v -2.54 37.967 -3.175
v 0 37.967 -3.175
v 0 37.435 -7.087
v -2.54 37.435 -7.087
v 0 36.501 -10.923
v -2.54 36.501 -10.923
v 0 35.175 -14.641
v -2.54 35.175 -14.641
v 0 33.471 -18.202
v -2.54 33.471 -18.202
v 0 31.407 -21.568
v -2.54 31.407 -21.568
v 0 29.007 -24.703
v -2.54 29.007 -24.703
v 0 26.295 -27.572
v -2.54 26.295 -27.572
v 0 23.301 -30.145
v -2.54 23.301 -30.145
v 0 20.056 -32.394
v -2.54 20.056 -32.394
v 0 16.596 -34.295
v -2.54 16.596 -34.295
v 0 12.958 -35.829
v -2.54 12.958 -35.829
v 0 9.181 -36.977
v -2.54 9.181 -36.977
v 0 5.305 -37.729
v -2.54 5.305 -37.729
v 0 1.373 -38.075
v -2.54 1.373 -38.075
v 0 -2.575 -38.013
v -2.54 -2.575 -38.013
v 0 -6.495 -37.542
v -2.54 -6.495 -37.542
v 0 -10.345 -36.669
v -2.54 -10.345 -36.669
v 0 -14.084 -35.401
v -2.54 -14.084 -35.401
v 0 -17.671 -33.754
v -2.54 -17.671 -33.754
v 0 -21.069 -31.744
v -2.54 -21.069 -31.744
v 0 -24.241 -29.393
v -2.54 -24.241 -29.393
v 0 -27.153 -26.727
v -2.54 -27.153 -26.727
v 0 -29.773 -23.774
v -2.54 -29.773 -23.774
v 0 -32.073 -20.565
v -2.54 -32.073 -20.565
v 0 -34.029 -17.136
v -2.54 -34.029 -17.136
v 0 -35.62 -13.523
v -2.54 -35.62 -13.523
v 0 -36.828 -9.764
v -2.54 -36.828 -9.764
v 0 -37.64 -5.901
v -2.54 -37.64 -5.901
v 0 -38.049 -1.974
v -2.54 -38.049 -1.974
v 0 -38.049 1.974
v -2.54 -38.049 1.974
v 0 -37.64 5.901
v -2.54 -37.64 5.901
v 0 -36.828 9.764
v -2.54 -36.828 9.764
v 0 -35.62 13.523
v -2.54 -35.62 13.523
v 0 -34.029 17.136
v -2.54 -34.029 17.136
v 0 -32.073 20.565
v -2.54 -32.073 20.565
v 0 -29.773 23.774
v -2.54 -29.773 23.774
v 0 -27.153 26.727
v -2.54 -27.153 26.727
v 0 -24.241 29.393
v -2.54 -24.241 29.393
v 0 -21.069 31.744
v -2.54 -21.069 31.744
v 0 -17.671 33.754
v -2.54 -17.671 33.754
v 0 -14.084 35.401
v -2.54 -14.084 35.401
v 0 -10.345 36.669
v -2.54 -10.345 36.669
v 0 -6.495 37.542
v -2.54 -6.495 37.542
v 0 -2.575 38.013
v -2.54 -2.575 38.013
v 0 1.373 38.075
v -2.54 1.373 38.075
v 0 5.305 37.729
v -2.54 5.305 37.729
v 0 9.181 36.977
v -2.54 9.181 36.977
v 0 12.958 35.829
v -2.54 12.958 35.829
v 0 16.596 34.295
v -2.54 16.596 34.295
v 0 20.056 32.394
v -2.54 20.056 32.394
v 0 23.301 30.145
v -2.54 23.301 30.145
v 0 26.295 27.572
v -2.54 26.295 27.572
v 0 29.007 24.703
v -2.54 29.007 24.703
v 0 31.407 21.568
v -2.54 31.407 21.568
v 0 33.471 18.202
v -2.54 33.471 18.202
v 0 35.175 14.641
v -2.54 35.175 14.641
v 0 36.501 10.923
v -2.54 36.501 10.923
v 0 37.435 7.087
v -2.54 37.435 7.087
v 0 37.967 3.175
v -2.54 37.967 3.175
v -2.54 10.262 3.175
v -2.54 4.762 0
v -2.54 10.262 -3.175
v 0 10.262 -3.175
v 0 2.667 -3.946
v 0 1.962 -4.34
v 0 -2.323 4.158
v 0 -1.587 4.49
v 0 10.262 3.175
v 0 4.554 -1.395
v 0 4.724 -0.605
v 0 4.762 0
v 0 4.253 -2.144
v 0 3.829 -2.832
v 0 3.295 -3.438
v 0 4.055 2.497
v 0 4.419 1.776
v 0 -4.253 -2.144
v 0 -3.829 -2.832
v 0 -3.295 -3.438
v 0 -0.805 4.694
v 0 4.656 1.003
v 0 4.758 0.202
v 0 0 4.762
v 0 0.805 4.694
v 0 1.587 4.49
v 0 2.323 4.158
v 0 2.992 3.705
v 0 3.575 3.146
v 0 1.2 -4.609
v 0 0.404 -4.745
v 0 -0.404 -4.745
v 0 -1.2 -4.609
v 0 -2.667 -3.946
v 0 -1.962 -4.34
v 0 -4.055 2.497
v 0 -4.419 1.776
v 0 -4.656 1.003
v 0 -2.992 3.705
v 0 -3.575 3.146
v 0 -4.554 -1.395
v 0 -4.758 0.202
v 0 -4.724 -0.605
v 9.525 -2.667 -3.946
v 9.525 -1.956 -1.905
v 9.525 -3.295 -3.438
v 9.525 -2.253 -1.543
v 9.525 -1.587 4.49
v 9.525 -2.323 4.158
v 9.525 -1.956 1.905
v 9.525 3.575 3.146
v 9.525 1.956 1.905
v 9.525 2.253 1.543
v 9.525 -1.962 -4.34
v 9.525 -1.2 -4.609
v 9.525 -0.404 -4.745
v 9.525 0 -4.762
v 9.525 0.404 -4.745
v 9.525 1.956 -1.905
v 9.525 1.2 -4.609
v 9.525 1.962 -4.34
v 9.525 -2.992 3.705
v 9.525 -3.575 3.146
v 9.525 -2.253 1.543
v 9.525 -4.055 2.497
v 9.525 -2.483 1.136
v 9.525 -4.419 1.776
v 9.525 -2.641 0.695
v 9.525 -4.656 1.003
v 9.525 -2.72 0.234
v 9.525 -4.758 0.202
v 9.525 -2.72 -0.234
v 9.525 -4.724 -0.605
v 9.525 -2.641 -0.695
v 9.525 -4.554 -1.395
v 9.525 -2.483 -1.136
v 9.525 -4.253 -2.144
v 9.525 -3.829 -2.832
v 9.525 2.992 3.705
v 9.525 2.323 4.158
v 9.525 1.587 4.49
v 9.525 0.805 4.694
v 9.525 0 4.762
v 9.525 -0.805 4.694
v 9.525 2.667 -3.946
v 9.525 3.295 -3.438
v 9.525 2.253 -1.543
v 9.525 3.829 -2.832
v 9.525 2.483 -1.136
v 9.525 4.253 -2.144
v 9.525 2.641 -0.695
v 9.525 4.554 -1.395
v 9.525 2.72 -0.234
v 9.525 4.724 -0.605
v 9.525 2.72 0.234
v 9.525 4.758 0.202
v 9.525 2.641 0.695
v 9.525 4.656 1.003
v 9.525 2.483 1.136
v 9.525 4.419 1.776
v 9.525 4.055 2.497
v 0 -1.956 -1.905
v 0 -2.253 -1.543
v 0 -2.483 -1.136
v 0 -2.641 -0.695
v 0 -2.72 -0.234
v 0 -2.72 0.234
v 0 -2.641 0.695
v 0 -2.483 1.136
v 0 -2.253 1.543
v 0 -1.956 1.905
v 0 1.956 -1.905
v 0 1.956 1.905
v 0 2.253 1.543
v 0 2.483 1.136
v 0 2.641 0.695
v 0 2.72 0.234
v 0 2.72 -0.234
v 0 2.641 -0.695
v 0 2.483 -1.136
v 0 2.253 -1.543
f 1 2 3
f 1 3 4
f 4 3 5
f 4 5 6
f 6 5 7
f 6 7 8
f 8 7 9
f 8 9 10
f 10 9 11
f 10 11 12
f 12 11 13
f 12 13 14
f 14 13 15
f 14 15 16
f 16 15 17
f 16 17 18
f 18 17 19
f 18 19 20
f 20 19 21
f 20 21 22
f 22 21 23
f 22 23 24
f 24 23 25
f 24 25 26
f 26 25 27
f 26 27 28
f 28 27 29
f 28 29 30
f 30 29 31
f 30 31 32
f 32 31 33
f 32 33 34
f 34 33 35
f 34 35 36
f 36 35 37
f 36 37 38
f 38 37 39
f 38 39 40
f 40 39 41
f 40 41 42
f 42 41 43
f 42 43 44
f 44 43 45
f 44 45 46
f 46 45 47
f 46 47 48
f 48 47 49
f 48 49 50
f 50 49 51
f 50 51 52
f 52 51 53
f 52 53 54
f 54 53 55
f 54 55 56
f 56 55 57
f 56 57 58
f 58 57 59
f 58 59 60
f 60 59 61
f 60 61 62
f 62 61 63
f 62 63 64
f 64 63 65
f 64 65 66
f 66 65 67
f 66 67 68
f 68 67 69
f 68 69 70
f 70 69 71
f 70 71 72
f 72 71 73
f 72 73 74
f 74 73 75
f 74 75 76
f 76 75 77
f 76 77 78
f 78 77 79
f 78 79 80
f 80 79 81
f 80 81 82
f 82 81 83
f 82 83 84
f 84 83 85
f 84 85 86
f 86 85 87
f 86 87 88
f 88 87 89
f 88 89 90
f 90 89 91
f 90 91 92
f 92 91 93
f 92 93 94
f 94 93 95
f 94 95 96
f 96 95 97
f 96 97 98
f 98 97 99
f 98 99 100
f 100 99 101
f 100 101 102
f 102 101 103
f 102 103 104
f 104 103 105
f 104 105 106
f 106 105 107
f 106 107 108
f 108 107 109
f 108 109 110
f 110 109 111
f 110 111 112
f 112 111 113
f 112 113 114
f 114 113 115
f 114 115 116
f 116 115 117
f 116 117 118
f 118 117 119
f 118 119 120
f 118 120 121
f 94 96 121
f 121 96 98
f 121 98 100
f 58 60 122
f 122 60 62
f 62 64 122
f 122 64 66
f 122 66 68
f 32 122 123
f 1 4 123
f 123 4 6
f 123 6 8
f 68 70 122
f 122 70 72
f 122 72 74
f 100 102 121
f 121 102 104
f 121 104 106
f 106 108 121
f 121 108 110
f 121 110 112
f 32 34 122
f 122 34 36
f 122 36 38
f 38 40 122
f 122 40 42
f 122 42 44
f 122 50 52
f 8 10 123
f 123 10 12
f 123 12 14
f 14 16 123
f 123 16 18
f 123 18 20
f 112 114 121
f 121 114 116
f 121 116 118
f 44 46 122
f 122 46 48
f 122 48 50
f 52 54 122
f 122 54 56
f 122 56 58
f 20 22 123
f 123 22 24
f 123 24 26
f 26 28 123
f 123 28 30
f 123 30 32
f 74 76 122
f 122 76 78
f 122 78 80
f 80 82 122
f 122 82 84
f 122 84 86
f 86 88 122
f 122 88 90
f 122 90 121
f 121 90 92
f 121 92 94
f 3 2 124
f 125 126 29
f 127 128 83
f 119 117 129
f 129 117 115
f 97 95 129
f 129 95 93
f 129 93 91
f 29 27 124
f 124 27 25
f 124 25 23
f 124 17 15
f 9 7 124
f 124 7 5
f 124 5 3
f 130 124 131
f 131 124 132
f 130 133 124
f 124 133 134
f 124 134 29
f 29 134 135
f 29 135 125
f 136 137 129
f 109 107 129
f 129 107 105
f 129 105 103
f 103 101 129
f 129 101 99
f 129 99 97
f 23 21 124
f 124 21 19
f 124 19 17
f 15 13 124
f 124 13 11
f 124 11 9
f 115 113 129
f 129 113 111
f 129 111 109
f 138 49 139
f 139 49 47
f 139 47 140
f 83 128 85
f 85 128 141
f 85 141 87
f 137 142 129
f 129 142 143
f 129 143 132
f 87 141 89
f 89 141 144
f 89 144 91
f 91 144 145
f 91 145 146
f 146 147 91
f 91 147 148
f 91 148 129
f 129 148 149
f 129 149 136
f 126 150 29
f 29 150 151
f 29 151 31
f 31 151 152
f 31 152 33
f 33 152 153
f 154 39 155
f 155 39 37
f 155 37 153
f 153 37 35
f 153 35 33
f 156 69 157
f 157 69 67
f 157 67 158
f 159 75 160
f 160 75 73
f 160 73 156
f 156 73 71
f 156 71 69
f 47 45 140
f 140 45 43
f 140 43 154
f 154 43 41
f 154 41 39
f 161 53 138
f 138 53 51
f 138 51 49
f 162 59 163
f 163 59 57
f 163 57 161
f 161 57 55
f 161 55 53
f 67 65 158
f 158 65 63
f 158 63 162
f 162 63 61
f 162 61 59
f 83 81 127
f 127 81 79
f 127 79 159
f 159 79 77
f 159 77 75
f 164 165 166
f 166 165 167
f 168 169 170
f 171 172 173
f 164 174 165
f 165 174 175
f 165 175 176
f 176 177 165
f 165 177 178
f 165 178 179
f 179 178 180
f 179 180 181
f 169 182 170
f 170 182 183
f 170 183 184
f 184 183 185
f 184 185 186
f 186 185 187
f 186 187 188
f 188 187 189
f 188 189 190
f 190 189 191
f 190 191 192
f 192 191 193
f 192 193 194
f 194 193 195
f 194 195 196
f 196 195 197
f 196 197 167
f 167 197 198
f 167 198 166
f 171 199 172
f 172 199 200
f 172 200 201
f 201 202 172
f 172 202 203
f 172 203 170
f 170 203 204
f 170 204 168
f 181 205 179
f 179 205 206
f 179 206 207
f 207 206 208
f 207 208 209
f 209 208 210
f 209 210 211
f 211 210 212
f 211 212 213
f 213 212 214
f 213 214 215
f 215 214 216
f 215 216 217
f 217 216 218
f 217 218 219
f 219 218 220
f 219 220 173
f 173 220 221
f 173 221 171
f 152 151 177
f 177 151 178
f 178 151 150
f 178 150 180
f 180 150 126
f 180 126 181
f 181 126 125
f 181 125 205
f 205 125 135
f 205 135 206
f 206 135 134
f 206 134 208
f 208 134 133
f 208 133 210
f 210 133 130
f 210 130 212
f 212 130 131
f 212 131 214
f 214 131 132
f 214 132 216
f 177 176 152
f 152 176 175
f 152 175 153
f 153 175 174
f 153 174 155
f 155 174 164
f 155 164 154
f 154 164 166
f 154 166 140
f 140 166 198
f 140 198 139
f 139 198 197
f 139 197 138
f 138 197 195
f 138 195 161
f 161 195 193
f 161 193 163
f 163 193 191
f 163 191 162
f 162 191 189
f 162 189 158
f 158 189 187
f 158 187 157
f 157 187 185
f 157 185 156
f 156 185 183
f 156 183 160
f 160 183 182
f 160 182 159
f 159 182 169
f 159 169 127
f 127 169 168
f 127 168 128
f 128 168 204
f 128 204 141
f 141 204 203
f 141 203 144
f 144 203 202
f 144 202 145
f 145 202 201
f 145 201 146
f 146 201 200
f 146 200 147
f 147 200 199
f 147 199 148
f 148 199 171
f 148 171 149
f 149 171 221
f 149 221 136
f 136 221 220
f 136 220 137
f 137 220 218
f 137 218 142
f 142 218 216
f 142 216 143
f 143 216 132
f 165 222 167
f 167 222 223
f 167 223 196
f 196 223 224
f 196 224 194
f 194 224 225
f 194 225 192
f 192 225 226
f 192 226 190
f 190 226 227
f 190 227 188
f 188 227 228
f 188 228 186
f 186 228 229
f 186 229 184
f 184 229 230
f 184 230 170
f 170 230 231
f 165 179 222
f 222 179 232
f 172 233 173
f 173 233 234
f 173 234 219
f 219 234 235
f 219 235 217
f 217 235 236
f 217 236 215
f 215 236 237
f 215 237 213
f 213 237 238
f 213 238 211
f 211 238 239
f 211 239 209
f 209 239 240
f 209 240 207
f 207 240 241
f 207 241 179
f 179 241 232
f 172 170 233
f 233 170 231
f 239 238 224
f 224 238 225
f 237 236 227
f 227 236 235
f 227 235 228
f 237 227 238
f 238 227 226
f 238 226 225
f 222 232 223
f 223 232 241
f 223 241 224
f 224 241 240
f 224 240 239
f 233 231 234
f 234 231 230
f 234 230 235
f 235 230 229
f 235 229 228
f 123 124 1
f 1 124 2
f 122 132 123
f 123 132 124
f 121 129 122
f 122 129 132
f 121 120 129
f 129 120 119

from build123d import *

# Parameters (mm, degrees)
SKETCH1_R               = 4.7625
BOSS_EXTRUDE1_DEPTH     = 9.525
SKETCH2_R               = 38.1
BOSS_EXTRUDE2_DEPTH     = 2.54
CUT_EXTRUDE1_DEPTH      = 55.716959208
CUT_EXTRUDE1_DEPTH_BACK = 55.716959208


with BuildPart() as part:
    # Sketch1 → Boss-Extrude1 (new body)
    with BuildSketch(Plane(origin=(0, 0, 0), x_dir=(0, 0, -1), z_dir=(1, 0, 0))):
        with Locations(Location((0, 0, 0), (0, 0, 180))):
            Circle(SKETCH1_R)
        with BuildLine():
            Line((-1.905, -1.956171069), (-1.905, 1.956171069))
            ThreePointArc((-1.905, 1.956171069), (0, 2.7305), (1.905, 1.956171069))
            Line((1.905, 1.956171069), (1.905, -1.956171069))
            ThreePointArc((1.905, -1.956171069), (0, -2.7305), (-1.905, -1.956171069))
        make_face(mode=Mode.SUBTRACT)
    extrude(amount=BOSS_EXTRUDE1_DEPTH)

    # Sketch2 → Boss-Extrude2 (add)
    with BuildSketch(Plane.ZY):
        Circle(SKETCH2_R)
    extrude(amount=BOSS_EXTRUDE2_DEPTH)

    # Sketch3 → Cut-Extrude1 (cut, two sides: drawn at the far end of the back side and taken through both)
    with BuildSketch(Plane(origin=(0, 0, 0), x_dir=(0, 0, -1), z_dir=(1, 0, 0)).offset(-CUT_EXTRUDE1_DEPTH_BACK)):
        Polygon((-3.175, 10.261761314), (0, 4.7625), (3.175, 10.261761314), (3.175, 38.1), (-3.175, 38.1), align=None)
    extrude(amount=CUT_EXTRUDE1_DEPTH + CUT_EXTRUDE1_DEPTH_BACK, mode=Mode.SUBTRACT)


solid = part.part
